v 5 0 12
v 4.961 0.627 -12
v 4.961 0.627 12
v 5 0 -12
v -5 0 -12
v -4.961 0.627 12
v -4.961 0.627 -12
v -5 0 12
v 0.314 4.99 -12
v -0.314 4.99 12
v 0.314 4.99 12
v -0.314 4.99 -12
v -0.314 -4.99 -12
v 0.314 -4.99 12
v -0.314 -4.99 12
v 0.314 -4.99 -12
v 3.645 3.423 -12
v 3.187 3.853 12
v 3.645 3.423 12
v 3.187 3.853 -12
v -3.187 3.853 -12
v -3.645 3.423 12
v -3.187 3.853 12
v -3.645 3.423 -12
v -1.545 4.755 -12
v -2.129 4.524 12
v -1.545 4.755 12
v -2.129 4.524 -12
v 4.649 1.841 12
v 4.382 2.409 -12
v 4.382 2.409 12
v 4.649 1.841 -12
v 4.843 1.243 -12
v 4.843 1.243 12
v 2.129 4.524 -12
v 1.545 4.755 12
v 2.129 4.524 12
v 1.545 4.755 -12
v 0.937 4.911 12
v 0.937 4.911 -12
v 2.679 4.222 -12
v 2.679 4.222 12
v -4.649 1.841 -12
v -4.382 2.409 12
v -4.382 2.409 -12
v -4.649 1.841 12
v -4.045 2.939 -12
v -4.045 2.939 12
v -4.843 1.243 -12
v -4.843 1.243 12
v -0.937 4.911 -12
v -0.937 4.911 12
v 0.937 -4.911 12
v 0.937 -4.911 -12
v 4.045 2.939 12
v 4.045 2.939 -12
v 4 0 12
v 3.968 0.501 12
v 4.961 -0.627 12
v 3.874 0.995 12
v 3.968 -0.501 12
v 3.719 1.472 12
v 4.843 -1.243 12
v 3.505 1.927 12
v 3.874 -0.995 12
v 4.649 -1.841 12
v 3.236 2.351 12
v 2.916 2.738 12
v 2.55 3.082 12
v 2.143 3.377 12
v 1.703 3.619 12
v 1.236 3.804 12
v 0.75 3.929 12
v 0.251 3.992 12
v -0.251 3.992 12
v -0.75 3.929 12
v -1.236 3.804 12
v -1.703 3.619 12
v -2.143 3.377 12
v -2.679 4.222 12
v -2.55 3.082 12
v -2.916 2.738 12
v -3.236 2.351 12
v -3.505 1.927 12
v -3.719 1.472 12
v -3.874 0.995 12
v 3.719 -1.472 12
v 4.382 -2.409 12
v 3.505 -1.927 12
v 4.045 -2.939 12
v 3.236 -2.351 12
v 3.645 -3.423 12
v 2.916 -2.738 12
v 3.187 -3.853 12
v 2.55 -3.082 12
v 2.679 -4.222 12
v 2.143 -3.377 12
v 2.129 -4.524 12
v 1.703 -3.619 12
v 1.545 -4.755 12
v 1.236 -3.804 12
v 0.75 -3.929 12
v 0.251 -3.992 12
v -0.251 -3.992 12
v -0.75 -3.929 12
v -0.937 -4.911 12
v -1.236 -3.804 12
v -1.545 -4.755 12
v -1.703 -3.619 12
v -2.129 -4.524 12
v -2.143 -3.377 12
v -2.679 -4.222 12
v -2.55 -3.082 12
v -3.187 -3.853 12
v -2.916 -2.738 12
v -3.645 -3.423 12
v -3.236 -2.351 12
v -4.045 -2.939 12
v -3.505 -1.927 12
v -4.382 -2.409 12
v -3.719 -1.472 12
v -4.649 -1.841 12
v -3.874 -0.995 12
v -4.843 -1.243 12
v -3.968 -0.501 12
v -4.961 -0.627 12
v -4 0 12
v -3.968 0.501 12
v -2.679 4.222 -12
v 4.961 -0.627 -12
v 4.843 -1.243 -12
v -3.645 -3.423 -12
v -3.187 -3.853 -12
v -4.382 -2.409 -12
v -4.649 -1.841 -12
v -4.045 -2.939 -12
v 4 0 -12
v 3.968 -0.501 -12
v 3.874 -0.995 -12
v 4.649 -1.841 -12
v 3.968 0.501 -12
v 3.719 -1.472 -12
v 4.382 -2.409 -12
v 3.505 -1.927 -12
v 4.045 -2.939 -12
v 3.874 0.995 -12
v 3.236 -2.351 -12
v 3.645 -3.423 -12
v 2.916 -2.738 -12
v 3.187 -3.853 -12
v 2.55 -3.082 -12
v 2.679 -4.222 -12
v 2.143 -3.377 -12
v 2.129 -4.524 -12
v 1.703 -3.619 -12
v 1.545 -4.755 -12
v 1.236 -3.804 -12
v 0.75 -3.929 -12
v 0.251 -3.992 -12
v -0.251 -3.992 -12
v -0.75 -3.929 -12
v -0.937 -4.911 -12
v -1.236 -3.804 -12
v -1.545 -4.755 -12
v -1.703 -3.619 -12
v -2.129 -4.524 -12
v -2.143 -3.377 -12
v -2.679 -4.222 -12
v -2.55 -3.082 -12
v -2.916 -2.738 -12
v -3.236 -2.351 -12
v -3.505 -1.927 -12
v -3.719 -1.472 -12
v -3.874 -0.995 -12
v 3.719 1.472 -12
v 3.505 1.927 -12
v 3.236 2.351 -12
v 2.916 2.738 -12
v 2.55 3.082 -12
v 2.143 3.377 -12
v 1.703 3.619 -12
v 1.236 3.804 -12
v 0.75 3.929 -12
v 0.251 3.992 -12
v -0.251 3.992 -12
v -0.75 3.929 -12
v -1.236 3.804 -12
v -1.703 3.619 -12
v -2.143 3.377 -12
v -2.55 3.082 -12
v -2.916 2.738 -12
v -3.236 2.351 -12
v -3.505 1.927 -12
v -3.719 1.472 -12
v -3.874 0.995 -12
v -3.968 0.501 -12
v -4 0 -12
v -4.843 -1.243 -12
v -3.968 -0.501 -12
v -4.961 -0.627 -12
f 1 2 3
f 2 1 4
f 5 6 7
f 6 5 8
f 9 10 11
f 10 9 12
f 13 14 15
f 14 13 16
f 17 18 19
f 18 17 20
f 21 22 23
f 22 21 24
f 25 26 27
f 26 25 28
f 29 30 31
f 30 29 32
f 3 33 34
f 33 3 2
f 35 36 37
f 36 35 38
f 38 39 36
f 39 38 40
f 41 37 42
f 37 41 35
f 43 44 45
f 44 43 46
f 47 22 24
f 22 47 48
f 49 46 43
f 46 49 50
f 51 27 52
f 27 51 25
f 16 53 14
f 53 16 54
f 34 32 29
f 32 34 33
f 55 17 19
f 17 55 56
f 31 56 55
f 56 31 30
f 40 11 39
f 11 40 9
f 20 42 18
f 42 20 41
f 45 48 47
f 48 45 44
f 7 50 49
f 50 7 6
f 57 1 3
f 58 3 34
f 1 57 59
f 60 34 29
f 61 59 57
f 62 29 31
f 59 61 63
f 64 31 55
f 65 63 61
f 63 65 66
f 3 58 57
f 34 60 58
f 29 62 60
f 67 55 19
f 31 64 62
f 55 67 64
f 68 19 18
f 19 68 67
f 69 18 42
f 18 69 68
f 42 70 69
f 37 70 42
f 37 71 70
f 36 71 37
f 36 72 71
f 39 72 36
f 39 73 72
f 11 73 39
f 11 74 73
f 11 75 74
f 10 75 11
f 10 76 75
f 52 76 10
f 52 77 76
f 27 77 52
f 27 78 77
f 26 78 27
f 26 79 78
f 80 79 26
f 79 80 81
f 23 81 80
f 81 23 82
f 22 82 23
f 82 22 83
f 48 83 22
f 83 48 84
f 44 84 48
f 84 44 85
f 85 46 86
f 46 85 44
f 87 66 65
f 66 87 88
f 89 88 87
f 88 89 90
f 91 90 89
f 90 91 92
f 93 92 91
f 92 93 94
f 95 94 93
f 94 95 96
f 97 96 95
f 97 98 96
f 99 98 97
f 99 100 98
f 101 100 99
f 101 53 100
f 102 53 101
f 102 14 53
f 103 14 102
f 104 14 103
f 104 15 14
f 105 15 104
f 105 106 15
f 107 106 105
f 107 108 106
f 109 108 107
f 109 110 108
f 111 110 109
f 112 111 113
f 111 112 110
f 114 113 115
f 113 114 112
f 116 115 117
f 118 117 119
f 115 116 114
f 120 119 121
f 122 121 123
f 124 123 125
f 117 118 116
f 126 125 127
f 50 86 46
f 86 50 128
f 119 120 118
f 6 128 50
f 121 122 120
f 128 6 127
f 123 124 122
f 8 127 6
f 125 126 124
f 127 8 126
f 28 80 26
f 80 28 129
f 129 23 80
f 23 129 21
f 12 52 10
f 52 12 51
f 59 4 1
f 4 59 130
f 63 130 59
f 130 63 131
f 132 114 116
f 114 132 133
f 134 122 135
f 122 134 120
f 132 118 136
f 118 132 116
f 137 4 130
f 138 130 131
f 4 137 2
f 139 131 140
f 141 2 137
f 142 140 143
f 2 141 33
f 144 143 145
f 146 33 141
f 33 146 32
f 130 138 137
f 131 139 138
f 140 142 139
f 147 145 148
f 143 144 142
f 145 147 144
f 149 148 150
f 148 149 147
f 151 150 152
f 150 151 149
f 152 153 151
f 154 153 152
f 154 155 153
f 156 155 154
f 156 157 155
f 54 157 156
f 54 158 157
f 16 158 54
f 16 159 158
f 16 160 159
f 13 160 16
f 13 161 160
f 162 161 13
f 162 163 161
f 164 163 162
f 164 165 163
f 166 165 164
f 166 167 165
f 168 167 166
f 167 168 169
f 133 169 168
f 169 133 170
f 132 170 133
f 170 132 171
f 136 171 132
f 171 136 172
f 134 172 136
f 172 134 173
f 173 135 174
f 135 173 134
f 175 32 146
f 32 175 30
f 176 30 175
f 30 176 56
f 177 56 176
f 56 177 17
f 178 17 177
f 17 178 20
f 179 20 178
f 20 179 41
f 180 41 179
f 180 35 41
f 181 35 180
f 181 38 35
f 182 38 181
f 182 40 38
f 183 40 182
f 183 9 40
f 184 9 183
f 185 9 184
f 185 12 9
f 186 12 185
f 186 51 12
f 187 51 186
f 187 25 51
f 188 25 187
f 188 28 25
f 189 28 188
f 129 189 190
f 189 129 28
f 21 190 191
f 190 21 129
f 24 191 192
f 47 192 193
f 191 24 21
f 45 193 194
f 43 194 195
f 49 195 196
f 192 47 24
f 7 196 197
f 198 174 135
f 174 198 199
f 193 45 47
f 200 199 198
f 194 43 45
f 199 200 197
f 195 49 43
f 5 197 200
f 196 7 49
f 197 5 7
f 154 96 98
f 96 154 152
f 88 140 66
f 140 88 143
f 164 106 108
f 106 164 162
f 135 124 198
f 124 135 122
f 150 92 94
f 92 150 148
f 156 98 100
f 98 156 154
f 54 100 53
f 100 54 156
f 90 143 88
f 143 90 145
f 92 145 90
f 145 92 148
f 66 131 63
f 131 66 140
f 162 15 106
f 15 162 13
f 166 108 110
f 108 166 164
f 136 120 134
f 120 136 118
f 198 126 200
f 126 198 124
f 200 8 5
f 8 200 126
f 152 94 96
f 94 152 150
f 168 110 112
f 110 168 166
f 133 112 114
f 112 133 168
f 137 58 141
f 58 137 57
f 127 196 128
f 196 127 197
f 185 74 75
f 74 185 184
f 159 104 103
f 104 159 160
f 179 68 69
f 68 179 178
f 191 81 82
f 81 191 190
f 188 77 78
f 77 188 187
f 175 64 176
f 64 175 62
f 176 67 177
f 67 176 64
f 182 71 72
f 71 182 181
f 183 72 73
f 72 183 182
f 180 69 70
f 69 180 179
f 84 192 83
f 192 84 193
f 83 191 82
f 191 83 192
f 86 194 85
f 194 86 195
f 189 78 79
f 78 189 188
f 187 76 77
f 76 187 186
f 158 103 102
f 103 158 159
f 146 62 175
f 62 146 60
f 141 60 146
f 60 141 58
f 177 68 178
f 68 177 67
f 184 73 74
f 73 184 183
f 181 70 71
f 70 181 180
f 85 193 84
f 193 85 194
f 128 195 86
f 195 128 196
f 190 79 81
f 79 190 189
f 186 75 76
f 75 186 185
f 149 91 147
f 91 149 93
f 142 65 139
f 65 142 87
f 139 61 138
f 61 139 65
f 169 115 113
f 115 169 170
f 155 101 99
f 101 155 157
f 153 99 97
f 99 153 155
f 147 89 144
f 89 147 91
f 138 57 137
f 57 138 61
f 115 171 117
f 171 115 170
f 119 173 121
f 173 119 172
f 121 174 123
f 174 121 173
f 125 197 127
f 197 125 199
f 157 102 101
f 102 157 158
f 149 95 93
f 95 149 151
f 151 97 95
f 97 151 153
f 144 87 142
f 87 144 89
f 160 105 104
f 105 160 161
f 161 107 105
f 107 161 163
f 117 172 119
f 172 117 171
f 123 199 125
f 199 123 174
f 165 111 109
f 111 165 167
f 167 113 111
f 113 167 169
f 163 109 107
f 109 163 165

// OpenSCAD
$fn = 50;


difference() {
	union() {
		translate(v = [0, 0, -12.0000000000]) {
			cylinder(h = 24, r = 5.0000000000);
		}
	}
	union() {
		translate(v = [0, 0, -100.0000000000]) {
			cylinder(h = 200, r = 4);
		}
	}
}
